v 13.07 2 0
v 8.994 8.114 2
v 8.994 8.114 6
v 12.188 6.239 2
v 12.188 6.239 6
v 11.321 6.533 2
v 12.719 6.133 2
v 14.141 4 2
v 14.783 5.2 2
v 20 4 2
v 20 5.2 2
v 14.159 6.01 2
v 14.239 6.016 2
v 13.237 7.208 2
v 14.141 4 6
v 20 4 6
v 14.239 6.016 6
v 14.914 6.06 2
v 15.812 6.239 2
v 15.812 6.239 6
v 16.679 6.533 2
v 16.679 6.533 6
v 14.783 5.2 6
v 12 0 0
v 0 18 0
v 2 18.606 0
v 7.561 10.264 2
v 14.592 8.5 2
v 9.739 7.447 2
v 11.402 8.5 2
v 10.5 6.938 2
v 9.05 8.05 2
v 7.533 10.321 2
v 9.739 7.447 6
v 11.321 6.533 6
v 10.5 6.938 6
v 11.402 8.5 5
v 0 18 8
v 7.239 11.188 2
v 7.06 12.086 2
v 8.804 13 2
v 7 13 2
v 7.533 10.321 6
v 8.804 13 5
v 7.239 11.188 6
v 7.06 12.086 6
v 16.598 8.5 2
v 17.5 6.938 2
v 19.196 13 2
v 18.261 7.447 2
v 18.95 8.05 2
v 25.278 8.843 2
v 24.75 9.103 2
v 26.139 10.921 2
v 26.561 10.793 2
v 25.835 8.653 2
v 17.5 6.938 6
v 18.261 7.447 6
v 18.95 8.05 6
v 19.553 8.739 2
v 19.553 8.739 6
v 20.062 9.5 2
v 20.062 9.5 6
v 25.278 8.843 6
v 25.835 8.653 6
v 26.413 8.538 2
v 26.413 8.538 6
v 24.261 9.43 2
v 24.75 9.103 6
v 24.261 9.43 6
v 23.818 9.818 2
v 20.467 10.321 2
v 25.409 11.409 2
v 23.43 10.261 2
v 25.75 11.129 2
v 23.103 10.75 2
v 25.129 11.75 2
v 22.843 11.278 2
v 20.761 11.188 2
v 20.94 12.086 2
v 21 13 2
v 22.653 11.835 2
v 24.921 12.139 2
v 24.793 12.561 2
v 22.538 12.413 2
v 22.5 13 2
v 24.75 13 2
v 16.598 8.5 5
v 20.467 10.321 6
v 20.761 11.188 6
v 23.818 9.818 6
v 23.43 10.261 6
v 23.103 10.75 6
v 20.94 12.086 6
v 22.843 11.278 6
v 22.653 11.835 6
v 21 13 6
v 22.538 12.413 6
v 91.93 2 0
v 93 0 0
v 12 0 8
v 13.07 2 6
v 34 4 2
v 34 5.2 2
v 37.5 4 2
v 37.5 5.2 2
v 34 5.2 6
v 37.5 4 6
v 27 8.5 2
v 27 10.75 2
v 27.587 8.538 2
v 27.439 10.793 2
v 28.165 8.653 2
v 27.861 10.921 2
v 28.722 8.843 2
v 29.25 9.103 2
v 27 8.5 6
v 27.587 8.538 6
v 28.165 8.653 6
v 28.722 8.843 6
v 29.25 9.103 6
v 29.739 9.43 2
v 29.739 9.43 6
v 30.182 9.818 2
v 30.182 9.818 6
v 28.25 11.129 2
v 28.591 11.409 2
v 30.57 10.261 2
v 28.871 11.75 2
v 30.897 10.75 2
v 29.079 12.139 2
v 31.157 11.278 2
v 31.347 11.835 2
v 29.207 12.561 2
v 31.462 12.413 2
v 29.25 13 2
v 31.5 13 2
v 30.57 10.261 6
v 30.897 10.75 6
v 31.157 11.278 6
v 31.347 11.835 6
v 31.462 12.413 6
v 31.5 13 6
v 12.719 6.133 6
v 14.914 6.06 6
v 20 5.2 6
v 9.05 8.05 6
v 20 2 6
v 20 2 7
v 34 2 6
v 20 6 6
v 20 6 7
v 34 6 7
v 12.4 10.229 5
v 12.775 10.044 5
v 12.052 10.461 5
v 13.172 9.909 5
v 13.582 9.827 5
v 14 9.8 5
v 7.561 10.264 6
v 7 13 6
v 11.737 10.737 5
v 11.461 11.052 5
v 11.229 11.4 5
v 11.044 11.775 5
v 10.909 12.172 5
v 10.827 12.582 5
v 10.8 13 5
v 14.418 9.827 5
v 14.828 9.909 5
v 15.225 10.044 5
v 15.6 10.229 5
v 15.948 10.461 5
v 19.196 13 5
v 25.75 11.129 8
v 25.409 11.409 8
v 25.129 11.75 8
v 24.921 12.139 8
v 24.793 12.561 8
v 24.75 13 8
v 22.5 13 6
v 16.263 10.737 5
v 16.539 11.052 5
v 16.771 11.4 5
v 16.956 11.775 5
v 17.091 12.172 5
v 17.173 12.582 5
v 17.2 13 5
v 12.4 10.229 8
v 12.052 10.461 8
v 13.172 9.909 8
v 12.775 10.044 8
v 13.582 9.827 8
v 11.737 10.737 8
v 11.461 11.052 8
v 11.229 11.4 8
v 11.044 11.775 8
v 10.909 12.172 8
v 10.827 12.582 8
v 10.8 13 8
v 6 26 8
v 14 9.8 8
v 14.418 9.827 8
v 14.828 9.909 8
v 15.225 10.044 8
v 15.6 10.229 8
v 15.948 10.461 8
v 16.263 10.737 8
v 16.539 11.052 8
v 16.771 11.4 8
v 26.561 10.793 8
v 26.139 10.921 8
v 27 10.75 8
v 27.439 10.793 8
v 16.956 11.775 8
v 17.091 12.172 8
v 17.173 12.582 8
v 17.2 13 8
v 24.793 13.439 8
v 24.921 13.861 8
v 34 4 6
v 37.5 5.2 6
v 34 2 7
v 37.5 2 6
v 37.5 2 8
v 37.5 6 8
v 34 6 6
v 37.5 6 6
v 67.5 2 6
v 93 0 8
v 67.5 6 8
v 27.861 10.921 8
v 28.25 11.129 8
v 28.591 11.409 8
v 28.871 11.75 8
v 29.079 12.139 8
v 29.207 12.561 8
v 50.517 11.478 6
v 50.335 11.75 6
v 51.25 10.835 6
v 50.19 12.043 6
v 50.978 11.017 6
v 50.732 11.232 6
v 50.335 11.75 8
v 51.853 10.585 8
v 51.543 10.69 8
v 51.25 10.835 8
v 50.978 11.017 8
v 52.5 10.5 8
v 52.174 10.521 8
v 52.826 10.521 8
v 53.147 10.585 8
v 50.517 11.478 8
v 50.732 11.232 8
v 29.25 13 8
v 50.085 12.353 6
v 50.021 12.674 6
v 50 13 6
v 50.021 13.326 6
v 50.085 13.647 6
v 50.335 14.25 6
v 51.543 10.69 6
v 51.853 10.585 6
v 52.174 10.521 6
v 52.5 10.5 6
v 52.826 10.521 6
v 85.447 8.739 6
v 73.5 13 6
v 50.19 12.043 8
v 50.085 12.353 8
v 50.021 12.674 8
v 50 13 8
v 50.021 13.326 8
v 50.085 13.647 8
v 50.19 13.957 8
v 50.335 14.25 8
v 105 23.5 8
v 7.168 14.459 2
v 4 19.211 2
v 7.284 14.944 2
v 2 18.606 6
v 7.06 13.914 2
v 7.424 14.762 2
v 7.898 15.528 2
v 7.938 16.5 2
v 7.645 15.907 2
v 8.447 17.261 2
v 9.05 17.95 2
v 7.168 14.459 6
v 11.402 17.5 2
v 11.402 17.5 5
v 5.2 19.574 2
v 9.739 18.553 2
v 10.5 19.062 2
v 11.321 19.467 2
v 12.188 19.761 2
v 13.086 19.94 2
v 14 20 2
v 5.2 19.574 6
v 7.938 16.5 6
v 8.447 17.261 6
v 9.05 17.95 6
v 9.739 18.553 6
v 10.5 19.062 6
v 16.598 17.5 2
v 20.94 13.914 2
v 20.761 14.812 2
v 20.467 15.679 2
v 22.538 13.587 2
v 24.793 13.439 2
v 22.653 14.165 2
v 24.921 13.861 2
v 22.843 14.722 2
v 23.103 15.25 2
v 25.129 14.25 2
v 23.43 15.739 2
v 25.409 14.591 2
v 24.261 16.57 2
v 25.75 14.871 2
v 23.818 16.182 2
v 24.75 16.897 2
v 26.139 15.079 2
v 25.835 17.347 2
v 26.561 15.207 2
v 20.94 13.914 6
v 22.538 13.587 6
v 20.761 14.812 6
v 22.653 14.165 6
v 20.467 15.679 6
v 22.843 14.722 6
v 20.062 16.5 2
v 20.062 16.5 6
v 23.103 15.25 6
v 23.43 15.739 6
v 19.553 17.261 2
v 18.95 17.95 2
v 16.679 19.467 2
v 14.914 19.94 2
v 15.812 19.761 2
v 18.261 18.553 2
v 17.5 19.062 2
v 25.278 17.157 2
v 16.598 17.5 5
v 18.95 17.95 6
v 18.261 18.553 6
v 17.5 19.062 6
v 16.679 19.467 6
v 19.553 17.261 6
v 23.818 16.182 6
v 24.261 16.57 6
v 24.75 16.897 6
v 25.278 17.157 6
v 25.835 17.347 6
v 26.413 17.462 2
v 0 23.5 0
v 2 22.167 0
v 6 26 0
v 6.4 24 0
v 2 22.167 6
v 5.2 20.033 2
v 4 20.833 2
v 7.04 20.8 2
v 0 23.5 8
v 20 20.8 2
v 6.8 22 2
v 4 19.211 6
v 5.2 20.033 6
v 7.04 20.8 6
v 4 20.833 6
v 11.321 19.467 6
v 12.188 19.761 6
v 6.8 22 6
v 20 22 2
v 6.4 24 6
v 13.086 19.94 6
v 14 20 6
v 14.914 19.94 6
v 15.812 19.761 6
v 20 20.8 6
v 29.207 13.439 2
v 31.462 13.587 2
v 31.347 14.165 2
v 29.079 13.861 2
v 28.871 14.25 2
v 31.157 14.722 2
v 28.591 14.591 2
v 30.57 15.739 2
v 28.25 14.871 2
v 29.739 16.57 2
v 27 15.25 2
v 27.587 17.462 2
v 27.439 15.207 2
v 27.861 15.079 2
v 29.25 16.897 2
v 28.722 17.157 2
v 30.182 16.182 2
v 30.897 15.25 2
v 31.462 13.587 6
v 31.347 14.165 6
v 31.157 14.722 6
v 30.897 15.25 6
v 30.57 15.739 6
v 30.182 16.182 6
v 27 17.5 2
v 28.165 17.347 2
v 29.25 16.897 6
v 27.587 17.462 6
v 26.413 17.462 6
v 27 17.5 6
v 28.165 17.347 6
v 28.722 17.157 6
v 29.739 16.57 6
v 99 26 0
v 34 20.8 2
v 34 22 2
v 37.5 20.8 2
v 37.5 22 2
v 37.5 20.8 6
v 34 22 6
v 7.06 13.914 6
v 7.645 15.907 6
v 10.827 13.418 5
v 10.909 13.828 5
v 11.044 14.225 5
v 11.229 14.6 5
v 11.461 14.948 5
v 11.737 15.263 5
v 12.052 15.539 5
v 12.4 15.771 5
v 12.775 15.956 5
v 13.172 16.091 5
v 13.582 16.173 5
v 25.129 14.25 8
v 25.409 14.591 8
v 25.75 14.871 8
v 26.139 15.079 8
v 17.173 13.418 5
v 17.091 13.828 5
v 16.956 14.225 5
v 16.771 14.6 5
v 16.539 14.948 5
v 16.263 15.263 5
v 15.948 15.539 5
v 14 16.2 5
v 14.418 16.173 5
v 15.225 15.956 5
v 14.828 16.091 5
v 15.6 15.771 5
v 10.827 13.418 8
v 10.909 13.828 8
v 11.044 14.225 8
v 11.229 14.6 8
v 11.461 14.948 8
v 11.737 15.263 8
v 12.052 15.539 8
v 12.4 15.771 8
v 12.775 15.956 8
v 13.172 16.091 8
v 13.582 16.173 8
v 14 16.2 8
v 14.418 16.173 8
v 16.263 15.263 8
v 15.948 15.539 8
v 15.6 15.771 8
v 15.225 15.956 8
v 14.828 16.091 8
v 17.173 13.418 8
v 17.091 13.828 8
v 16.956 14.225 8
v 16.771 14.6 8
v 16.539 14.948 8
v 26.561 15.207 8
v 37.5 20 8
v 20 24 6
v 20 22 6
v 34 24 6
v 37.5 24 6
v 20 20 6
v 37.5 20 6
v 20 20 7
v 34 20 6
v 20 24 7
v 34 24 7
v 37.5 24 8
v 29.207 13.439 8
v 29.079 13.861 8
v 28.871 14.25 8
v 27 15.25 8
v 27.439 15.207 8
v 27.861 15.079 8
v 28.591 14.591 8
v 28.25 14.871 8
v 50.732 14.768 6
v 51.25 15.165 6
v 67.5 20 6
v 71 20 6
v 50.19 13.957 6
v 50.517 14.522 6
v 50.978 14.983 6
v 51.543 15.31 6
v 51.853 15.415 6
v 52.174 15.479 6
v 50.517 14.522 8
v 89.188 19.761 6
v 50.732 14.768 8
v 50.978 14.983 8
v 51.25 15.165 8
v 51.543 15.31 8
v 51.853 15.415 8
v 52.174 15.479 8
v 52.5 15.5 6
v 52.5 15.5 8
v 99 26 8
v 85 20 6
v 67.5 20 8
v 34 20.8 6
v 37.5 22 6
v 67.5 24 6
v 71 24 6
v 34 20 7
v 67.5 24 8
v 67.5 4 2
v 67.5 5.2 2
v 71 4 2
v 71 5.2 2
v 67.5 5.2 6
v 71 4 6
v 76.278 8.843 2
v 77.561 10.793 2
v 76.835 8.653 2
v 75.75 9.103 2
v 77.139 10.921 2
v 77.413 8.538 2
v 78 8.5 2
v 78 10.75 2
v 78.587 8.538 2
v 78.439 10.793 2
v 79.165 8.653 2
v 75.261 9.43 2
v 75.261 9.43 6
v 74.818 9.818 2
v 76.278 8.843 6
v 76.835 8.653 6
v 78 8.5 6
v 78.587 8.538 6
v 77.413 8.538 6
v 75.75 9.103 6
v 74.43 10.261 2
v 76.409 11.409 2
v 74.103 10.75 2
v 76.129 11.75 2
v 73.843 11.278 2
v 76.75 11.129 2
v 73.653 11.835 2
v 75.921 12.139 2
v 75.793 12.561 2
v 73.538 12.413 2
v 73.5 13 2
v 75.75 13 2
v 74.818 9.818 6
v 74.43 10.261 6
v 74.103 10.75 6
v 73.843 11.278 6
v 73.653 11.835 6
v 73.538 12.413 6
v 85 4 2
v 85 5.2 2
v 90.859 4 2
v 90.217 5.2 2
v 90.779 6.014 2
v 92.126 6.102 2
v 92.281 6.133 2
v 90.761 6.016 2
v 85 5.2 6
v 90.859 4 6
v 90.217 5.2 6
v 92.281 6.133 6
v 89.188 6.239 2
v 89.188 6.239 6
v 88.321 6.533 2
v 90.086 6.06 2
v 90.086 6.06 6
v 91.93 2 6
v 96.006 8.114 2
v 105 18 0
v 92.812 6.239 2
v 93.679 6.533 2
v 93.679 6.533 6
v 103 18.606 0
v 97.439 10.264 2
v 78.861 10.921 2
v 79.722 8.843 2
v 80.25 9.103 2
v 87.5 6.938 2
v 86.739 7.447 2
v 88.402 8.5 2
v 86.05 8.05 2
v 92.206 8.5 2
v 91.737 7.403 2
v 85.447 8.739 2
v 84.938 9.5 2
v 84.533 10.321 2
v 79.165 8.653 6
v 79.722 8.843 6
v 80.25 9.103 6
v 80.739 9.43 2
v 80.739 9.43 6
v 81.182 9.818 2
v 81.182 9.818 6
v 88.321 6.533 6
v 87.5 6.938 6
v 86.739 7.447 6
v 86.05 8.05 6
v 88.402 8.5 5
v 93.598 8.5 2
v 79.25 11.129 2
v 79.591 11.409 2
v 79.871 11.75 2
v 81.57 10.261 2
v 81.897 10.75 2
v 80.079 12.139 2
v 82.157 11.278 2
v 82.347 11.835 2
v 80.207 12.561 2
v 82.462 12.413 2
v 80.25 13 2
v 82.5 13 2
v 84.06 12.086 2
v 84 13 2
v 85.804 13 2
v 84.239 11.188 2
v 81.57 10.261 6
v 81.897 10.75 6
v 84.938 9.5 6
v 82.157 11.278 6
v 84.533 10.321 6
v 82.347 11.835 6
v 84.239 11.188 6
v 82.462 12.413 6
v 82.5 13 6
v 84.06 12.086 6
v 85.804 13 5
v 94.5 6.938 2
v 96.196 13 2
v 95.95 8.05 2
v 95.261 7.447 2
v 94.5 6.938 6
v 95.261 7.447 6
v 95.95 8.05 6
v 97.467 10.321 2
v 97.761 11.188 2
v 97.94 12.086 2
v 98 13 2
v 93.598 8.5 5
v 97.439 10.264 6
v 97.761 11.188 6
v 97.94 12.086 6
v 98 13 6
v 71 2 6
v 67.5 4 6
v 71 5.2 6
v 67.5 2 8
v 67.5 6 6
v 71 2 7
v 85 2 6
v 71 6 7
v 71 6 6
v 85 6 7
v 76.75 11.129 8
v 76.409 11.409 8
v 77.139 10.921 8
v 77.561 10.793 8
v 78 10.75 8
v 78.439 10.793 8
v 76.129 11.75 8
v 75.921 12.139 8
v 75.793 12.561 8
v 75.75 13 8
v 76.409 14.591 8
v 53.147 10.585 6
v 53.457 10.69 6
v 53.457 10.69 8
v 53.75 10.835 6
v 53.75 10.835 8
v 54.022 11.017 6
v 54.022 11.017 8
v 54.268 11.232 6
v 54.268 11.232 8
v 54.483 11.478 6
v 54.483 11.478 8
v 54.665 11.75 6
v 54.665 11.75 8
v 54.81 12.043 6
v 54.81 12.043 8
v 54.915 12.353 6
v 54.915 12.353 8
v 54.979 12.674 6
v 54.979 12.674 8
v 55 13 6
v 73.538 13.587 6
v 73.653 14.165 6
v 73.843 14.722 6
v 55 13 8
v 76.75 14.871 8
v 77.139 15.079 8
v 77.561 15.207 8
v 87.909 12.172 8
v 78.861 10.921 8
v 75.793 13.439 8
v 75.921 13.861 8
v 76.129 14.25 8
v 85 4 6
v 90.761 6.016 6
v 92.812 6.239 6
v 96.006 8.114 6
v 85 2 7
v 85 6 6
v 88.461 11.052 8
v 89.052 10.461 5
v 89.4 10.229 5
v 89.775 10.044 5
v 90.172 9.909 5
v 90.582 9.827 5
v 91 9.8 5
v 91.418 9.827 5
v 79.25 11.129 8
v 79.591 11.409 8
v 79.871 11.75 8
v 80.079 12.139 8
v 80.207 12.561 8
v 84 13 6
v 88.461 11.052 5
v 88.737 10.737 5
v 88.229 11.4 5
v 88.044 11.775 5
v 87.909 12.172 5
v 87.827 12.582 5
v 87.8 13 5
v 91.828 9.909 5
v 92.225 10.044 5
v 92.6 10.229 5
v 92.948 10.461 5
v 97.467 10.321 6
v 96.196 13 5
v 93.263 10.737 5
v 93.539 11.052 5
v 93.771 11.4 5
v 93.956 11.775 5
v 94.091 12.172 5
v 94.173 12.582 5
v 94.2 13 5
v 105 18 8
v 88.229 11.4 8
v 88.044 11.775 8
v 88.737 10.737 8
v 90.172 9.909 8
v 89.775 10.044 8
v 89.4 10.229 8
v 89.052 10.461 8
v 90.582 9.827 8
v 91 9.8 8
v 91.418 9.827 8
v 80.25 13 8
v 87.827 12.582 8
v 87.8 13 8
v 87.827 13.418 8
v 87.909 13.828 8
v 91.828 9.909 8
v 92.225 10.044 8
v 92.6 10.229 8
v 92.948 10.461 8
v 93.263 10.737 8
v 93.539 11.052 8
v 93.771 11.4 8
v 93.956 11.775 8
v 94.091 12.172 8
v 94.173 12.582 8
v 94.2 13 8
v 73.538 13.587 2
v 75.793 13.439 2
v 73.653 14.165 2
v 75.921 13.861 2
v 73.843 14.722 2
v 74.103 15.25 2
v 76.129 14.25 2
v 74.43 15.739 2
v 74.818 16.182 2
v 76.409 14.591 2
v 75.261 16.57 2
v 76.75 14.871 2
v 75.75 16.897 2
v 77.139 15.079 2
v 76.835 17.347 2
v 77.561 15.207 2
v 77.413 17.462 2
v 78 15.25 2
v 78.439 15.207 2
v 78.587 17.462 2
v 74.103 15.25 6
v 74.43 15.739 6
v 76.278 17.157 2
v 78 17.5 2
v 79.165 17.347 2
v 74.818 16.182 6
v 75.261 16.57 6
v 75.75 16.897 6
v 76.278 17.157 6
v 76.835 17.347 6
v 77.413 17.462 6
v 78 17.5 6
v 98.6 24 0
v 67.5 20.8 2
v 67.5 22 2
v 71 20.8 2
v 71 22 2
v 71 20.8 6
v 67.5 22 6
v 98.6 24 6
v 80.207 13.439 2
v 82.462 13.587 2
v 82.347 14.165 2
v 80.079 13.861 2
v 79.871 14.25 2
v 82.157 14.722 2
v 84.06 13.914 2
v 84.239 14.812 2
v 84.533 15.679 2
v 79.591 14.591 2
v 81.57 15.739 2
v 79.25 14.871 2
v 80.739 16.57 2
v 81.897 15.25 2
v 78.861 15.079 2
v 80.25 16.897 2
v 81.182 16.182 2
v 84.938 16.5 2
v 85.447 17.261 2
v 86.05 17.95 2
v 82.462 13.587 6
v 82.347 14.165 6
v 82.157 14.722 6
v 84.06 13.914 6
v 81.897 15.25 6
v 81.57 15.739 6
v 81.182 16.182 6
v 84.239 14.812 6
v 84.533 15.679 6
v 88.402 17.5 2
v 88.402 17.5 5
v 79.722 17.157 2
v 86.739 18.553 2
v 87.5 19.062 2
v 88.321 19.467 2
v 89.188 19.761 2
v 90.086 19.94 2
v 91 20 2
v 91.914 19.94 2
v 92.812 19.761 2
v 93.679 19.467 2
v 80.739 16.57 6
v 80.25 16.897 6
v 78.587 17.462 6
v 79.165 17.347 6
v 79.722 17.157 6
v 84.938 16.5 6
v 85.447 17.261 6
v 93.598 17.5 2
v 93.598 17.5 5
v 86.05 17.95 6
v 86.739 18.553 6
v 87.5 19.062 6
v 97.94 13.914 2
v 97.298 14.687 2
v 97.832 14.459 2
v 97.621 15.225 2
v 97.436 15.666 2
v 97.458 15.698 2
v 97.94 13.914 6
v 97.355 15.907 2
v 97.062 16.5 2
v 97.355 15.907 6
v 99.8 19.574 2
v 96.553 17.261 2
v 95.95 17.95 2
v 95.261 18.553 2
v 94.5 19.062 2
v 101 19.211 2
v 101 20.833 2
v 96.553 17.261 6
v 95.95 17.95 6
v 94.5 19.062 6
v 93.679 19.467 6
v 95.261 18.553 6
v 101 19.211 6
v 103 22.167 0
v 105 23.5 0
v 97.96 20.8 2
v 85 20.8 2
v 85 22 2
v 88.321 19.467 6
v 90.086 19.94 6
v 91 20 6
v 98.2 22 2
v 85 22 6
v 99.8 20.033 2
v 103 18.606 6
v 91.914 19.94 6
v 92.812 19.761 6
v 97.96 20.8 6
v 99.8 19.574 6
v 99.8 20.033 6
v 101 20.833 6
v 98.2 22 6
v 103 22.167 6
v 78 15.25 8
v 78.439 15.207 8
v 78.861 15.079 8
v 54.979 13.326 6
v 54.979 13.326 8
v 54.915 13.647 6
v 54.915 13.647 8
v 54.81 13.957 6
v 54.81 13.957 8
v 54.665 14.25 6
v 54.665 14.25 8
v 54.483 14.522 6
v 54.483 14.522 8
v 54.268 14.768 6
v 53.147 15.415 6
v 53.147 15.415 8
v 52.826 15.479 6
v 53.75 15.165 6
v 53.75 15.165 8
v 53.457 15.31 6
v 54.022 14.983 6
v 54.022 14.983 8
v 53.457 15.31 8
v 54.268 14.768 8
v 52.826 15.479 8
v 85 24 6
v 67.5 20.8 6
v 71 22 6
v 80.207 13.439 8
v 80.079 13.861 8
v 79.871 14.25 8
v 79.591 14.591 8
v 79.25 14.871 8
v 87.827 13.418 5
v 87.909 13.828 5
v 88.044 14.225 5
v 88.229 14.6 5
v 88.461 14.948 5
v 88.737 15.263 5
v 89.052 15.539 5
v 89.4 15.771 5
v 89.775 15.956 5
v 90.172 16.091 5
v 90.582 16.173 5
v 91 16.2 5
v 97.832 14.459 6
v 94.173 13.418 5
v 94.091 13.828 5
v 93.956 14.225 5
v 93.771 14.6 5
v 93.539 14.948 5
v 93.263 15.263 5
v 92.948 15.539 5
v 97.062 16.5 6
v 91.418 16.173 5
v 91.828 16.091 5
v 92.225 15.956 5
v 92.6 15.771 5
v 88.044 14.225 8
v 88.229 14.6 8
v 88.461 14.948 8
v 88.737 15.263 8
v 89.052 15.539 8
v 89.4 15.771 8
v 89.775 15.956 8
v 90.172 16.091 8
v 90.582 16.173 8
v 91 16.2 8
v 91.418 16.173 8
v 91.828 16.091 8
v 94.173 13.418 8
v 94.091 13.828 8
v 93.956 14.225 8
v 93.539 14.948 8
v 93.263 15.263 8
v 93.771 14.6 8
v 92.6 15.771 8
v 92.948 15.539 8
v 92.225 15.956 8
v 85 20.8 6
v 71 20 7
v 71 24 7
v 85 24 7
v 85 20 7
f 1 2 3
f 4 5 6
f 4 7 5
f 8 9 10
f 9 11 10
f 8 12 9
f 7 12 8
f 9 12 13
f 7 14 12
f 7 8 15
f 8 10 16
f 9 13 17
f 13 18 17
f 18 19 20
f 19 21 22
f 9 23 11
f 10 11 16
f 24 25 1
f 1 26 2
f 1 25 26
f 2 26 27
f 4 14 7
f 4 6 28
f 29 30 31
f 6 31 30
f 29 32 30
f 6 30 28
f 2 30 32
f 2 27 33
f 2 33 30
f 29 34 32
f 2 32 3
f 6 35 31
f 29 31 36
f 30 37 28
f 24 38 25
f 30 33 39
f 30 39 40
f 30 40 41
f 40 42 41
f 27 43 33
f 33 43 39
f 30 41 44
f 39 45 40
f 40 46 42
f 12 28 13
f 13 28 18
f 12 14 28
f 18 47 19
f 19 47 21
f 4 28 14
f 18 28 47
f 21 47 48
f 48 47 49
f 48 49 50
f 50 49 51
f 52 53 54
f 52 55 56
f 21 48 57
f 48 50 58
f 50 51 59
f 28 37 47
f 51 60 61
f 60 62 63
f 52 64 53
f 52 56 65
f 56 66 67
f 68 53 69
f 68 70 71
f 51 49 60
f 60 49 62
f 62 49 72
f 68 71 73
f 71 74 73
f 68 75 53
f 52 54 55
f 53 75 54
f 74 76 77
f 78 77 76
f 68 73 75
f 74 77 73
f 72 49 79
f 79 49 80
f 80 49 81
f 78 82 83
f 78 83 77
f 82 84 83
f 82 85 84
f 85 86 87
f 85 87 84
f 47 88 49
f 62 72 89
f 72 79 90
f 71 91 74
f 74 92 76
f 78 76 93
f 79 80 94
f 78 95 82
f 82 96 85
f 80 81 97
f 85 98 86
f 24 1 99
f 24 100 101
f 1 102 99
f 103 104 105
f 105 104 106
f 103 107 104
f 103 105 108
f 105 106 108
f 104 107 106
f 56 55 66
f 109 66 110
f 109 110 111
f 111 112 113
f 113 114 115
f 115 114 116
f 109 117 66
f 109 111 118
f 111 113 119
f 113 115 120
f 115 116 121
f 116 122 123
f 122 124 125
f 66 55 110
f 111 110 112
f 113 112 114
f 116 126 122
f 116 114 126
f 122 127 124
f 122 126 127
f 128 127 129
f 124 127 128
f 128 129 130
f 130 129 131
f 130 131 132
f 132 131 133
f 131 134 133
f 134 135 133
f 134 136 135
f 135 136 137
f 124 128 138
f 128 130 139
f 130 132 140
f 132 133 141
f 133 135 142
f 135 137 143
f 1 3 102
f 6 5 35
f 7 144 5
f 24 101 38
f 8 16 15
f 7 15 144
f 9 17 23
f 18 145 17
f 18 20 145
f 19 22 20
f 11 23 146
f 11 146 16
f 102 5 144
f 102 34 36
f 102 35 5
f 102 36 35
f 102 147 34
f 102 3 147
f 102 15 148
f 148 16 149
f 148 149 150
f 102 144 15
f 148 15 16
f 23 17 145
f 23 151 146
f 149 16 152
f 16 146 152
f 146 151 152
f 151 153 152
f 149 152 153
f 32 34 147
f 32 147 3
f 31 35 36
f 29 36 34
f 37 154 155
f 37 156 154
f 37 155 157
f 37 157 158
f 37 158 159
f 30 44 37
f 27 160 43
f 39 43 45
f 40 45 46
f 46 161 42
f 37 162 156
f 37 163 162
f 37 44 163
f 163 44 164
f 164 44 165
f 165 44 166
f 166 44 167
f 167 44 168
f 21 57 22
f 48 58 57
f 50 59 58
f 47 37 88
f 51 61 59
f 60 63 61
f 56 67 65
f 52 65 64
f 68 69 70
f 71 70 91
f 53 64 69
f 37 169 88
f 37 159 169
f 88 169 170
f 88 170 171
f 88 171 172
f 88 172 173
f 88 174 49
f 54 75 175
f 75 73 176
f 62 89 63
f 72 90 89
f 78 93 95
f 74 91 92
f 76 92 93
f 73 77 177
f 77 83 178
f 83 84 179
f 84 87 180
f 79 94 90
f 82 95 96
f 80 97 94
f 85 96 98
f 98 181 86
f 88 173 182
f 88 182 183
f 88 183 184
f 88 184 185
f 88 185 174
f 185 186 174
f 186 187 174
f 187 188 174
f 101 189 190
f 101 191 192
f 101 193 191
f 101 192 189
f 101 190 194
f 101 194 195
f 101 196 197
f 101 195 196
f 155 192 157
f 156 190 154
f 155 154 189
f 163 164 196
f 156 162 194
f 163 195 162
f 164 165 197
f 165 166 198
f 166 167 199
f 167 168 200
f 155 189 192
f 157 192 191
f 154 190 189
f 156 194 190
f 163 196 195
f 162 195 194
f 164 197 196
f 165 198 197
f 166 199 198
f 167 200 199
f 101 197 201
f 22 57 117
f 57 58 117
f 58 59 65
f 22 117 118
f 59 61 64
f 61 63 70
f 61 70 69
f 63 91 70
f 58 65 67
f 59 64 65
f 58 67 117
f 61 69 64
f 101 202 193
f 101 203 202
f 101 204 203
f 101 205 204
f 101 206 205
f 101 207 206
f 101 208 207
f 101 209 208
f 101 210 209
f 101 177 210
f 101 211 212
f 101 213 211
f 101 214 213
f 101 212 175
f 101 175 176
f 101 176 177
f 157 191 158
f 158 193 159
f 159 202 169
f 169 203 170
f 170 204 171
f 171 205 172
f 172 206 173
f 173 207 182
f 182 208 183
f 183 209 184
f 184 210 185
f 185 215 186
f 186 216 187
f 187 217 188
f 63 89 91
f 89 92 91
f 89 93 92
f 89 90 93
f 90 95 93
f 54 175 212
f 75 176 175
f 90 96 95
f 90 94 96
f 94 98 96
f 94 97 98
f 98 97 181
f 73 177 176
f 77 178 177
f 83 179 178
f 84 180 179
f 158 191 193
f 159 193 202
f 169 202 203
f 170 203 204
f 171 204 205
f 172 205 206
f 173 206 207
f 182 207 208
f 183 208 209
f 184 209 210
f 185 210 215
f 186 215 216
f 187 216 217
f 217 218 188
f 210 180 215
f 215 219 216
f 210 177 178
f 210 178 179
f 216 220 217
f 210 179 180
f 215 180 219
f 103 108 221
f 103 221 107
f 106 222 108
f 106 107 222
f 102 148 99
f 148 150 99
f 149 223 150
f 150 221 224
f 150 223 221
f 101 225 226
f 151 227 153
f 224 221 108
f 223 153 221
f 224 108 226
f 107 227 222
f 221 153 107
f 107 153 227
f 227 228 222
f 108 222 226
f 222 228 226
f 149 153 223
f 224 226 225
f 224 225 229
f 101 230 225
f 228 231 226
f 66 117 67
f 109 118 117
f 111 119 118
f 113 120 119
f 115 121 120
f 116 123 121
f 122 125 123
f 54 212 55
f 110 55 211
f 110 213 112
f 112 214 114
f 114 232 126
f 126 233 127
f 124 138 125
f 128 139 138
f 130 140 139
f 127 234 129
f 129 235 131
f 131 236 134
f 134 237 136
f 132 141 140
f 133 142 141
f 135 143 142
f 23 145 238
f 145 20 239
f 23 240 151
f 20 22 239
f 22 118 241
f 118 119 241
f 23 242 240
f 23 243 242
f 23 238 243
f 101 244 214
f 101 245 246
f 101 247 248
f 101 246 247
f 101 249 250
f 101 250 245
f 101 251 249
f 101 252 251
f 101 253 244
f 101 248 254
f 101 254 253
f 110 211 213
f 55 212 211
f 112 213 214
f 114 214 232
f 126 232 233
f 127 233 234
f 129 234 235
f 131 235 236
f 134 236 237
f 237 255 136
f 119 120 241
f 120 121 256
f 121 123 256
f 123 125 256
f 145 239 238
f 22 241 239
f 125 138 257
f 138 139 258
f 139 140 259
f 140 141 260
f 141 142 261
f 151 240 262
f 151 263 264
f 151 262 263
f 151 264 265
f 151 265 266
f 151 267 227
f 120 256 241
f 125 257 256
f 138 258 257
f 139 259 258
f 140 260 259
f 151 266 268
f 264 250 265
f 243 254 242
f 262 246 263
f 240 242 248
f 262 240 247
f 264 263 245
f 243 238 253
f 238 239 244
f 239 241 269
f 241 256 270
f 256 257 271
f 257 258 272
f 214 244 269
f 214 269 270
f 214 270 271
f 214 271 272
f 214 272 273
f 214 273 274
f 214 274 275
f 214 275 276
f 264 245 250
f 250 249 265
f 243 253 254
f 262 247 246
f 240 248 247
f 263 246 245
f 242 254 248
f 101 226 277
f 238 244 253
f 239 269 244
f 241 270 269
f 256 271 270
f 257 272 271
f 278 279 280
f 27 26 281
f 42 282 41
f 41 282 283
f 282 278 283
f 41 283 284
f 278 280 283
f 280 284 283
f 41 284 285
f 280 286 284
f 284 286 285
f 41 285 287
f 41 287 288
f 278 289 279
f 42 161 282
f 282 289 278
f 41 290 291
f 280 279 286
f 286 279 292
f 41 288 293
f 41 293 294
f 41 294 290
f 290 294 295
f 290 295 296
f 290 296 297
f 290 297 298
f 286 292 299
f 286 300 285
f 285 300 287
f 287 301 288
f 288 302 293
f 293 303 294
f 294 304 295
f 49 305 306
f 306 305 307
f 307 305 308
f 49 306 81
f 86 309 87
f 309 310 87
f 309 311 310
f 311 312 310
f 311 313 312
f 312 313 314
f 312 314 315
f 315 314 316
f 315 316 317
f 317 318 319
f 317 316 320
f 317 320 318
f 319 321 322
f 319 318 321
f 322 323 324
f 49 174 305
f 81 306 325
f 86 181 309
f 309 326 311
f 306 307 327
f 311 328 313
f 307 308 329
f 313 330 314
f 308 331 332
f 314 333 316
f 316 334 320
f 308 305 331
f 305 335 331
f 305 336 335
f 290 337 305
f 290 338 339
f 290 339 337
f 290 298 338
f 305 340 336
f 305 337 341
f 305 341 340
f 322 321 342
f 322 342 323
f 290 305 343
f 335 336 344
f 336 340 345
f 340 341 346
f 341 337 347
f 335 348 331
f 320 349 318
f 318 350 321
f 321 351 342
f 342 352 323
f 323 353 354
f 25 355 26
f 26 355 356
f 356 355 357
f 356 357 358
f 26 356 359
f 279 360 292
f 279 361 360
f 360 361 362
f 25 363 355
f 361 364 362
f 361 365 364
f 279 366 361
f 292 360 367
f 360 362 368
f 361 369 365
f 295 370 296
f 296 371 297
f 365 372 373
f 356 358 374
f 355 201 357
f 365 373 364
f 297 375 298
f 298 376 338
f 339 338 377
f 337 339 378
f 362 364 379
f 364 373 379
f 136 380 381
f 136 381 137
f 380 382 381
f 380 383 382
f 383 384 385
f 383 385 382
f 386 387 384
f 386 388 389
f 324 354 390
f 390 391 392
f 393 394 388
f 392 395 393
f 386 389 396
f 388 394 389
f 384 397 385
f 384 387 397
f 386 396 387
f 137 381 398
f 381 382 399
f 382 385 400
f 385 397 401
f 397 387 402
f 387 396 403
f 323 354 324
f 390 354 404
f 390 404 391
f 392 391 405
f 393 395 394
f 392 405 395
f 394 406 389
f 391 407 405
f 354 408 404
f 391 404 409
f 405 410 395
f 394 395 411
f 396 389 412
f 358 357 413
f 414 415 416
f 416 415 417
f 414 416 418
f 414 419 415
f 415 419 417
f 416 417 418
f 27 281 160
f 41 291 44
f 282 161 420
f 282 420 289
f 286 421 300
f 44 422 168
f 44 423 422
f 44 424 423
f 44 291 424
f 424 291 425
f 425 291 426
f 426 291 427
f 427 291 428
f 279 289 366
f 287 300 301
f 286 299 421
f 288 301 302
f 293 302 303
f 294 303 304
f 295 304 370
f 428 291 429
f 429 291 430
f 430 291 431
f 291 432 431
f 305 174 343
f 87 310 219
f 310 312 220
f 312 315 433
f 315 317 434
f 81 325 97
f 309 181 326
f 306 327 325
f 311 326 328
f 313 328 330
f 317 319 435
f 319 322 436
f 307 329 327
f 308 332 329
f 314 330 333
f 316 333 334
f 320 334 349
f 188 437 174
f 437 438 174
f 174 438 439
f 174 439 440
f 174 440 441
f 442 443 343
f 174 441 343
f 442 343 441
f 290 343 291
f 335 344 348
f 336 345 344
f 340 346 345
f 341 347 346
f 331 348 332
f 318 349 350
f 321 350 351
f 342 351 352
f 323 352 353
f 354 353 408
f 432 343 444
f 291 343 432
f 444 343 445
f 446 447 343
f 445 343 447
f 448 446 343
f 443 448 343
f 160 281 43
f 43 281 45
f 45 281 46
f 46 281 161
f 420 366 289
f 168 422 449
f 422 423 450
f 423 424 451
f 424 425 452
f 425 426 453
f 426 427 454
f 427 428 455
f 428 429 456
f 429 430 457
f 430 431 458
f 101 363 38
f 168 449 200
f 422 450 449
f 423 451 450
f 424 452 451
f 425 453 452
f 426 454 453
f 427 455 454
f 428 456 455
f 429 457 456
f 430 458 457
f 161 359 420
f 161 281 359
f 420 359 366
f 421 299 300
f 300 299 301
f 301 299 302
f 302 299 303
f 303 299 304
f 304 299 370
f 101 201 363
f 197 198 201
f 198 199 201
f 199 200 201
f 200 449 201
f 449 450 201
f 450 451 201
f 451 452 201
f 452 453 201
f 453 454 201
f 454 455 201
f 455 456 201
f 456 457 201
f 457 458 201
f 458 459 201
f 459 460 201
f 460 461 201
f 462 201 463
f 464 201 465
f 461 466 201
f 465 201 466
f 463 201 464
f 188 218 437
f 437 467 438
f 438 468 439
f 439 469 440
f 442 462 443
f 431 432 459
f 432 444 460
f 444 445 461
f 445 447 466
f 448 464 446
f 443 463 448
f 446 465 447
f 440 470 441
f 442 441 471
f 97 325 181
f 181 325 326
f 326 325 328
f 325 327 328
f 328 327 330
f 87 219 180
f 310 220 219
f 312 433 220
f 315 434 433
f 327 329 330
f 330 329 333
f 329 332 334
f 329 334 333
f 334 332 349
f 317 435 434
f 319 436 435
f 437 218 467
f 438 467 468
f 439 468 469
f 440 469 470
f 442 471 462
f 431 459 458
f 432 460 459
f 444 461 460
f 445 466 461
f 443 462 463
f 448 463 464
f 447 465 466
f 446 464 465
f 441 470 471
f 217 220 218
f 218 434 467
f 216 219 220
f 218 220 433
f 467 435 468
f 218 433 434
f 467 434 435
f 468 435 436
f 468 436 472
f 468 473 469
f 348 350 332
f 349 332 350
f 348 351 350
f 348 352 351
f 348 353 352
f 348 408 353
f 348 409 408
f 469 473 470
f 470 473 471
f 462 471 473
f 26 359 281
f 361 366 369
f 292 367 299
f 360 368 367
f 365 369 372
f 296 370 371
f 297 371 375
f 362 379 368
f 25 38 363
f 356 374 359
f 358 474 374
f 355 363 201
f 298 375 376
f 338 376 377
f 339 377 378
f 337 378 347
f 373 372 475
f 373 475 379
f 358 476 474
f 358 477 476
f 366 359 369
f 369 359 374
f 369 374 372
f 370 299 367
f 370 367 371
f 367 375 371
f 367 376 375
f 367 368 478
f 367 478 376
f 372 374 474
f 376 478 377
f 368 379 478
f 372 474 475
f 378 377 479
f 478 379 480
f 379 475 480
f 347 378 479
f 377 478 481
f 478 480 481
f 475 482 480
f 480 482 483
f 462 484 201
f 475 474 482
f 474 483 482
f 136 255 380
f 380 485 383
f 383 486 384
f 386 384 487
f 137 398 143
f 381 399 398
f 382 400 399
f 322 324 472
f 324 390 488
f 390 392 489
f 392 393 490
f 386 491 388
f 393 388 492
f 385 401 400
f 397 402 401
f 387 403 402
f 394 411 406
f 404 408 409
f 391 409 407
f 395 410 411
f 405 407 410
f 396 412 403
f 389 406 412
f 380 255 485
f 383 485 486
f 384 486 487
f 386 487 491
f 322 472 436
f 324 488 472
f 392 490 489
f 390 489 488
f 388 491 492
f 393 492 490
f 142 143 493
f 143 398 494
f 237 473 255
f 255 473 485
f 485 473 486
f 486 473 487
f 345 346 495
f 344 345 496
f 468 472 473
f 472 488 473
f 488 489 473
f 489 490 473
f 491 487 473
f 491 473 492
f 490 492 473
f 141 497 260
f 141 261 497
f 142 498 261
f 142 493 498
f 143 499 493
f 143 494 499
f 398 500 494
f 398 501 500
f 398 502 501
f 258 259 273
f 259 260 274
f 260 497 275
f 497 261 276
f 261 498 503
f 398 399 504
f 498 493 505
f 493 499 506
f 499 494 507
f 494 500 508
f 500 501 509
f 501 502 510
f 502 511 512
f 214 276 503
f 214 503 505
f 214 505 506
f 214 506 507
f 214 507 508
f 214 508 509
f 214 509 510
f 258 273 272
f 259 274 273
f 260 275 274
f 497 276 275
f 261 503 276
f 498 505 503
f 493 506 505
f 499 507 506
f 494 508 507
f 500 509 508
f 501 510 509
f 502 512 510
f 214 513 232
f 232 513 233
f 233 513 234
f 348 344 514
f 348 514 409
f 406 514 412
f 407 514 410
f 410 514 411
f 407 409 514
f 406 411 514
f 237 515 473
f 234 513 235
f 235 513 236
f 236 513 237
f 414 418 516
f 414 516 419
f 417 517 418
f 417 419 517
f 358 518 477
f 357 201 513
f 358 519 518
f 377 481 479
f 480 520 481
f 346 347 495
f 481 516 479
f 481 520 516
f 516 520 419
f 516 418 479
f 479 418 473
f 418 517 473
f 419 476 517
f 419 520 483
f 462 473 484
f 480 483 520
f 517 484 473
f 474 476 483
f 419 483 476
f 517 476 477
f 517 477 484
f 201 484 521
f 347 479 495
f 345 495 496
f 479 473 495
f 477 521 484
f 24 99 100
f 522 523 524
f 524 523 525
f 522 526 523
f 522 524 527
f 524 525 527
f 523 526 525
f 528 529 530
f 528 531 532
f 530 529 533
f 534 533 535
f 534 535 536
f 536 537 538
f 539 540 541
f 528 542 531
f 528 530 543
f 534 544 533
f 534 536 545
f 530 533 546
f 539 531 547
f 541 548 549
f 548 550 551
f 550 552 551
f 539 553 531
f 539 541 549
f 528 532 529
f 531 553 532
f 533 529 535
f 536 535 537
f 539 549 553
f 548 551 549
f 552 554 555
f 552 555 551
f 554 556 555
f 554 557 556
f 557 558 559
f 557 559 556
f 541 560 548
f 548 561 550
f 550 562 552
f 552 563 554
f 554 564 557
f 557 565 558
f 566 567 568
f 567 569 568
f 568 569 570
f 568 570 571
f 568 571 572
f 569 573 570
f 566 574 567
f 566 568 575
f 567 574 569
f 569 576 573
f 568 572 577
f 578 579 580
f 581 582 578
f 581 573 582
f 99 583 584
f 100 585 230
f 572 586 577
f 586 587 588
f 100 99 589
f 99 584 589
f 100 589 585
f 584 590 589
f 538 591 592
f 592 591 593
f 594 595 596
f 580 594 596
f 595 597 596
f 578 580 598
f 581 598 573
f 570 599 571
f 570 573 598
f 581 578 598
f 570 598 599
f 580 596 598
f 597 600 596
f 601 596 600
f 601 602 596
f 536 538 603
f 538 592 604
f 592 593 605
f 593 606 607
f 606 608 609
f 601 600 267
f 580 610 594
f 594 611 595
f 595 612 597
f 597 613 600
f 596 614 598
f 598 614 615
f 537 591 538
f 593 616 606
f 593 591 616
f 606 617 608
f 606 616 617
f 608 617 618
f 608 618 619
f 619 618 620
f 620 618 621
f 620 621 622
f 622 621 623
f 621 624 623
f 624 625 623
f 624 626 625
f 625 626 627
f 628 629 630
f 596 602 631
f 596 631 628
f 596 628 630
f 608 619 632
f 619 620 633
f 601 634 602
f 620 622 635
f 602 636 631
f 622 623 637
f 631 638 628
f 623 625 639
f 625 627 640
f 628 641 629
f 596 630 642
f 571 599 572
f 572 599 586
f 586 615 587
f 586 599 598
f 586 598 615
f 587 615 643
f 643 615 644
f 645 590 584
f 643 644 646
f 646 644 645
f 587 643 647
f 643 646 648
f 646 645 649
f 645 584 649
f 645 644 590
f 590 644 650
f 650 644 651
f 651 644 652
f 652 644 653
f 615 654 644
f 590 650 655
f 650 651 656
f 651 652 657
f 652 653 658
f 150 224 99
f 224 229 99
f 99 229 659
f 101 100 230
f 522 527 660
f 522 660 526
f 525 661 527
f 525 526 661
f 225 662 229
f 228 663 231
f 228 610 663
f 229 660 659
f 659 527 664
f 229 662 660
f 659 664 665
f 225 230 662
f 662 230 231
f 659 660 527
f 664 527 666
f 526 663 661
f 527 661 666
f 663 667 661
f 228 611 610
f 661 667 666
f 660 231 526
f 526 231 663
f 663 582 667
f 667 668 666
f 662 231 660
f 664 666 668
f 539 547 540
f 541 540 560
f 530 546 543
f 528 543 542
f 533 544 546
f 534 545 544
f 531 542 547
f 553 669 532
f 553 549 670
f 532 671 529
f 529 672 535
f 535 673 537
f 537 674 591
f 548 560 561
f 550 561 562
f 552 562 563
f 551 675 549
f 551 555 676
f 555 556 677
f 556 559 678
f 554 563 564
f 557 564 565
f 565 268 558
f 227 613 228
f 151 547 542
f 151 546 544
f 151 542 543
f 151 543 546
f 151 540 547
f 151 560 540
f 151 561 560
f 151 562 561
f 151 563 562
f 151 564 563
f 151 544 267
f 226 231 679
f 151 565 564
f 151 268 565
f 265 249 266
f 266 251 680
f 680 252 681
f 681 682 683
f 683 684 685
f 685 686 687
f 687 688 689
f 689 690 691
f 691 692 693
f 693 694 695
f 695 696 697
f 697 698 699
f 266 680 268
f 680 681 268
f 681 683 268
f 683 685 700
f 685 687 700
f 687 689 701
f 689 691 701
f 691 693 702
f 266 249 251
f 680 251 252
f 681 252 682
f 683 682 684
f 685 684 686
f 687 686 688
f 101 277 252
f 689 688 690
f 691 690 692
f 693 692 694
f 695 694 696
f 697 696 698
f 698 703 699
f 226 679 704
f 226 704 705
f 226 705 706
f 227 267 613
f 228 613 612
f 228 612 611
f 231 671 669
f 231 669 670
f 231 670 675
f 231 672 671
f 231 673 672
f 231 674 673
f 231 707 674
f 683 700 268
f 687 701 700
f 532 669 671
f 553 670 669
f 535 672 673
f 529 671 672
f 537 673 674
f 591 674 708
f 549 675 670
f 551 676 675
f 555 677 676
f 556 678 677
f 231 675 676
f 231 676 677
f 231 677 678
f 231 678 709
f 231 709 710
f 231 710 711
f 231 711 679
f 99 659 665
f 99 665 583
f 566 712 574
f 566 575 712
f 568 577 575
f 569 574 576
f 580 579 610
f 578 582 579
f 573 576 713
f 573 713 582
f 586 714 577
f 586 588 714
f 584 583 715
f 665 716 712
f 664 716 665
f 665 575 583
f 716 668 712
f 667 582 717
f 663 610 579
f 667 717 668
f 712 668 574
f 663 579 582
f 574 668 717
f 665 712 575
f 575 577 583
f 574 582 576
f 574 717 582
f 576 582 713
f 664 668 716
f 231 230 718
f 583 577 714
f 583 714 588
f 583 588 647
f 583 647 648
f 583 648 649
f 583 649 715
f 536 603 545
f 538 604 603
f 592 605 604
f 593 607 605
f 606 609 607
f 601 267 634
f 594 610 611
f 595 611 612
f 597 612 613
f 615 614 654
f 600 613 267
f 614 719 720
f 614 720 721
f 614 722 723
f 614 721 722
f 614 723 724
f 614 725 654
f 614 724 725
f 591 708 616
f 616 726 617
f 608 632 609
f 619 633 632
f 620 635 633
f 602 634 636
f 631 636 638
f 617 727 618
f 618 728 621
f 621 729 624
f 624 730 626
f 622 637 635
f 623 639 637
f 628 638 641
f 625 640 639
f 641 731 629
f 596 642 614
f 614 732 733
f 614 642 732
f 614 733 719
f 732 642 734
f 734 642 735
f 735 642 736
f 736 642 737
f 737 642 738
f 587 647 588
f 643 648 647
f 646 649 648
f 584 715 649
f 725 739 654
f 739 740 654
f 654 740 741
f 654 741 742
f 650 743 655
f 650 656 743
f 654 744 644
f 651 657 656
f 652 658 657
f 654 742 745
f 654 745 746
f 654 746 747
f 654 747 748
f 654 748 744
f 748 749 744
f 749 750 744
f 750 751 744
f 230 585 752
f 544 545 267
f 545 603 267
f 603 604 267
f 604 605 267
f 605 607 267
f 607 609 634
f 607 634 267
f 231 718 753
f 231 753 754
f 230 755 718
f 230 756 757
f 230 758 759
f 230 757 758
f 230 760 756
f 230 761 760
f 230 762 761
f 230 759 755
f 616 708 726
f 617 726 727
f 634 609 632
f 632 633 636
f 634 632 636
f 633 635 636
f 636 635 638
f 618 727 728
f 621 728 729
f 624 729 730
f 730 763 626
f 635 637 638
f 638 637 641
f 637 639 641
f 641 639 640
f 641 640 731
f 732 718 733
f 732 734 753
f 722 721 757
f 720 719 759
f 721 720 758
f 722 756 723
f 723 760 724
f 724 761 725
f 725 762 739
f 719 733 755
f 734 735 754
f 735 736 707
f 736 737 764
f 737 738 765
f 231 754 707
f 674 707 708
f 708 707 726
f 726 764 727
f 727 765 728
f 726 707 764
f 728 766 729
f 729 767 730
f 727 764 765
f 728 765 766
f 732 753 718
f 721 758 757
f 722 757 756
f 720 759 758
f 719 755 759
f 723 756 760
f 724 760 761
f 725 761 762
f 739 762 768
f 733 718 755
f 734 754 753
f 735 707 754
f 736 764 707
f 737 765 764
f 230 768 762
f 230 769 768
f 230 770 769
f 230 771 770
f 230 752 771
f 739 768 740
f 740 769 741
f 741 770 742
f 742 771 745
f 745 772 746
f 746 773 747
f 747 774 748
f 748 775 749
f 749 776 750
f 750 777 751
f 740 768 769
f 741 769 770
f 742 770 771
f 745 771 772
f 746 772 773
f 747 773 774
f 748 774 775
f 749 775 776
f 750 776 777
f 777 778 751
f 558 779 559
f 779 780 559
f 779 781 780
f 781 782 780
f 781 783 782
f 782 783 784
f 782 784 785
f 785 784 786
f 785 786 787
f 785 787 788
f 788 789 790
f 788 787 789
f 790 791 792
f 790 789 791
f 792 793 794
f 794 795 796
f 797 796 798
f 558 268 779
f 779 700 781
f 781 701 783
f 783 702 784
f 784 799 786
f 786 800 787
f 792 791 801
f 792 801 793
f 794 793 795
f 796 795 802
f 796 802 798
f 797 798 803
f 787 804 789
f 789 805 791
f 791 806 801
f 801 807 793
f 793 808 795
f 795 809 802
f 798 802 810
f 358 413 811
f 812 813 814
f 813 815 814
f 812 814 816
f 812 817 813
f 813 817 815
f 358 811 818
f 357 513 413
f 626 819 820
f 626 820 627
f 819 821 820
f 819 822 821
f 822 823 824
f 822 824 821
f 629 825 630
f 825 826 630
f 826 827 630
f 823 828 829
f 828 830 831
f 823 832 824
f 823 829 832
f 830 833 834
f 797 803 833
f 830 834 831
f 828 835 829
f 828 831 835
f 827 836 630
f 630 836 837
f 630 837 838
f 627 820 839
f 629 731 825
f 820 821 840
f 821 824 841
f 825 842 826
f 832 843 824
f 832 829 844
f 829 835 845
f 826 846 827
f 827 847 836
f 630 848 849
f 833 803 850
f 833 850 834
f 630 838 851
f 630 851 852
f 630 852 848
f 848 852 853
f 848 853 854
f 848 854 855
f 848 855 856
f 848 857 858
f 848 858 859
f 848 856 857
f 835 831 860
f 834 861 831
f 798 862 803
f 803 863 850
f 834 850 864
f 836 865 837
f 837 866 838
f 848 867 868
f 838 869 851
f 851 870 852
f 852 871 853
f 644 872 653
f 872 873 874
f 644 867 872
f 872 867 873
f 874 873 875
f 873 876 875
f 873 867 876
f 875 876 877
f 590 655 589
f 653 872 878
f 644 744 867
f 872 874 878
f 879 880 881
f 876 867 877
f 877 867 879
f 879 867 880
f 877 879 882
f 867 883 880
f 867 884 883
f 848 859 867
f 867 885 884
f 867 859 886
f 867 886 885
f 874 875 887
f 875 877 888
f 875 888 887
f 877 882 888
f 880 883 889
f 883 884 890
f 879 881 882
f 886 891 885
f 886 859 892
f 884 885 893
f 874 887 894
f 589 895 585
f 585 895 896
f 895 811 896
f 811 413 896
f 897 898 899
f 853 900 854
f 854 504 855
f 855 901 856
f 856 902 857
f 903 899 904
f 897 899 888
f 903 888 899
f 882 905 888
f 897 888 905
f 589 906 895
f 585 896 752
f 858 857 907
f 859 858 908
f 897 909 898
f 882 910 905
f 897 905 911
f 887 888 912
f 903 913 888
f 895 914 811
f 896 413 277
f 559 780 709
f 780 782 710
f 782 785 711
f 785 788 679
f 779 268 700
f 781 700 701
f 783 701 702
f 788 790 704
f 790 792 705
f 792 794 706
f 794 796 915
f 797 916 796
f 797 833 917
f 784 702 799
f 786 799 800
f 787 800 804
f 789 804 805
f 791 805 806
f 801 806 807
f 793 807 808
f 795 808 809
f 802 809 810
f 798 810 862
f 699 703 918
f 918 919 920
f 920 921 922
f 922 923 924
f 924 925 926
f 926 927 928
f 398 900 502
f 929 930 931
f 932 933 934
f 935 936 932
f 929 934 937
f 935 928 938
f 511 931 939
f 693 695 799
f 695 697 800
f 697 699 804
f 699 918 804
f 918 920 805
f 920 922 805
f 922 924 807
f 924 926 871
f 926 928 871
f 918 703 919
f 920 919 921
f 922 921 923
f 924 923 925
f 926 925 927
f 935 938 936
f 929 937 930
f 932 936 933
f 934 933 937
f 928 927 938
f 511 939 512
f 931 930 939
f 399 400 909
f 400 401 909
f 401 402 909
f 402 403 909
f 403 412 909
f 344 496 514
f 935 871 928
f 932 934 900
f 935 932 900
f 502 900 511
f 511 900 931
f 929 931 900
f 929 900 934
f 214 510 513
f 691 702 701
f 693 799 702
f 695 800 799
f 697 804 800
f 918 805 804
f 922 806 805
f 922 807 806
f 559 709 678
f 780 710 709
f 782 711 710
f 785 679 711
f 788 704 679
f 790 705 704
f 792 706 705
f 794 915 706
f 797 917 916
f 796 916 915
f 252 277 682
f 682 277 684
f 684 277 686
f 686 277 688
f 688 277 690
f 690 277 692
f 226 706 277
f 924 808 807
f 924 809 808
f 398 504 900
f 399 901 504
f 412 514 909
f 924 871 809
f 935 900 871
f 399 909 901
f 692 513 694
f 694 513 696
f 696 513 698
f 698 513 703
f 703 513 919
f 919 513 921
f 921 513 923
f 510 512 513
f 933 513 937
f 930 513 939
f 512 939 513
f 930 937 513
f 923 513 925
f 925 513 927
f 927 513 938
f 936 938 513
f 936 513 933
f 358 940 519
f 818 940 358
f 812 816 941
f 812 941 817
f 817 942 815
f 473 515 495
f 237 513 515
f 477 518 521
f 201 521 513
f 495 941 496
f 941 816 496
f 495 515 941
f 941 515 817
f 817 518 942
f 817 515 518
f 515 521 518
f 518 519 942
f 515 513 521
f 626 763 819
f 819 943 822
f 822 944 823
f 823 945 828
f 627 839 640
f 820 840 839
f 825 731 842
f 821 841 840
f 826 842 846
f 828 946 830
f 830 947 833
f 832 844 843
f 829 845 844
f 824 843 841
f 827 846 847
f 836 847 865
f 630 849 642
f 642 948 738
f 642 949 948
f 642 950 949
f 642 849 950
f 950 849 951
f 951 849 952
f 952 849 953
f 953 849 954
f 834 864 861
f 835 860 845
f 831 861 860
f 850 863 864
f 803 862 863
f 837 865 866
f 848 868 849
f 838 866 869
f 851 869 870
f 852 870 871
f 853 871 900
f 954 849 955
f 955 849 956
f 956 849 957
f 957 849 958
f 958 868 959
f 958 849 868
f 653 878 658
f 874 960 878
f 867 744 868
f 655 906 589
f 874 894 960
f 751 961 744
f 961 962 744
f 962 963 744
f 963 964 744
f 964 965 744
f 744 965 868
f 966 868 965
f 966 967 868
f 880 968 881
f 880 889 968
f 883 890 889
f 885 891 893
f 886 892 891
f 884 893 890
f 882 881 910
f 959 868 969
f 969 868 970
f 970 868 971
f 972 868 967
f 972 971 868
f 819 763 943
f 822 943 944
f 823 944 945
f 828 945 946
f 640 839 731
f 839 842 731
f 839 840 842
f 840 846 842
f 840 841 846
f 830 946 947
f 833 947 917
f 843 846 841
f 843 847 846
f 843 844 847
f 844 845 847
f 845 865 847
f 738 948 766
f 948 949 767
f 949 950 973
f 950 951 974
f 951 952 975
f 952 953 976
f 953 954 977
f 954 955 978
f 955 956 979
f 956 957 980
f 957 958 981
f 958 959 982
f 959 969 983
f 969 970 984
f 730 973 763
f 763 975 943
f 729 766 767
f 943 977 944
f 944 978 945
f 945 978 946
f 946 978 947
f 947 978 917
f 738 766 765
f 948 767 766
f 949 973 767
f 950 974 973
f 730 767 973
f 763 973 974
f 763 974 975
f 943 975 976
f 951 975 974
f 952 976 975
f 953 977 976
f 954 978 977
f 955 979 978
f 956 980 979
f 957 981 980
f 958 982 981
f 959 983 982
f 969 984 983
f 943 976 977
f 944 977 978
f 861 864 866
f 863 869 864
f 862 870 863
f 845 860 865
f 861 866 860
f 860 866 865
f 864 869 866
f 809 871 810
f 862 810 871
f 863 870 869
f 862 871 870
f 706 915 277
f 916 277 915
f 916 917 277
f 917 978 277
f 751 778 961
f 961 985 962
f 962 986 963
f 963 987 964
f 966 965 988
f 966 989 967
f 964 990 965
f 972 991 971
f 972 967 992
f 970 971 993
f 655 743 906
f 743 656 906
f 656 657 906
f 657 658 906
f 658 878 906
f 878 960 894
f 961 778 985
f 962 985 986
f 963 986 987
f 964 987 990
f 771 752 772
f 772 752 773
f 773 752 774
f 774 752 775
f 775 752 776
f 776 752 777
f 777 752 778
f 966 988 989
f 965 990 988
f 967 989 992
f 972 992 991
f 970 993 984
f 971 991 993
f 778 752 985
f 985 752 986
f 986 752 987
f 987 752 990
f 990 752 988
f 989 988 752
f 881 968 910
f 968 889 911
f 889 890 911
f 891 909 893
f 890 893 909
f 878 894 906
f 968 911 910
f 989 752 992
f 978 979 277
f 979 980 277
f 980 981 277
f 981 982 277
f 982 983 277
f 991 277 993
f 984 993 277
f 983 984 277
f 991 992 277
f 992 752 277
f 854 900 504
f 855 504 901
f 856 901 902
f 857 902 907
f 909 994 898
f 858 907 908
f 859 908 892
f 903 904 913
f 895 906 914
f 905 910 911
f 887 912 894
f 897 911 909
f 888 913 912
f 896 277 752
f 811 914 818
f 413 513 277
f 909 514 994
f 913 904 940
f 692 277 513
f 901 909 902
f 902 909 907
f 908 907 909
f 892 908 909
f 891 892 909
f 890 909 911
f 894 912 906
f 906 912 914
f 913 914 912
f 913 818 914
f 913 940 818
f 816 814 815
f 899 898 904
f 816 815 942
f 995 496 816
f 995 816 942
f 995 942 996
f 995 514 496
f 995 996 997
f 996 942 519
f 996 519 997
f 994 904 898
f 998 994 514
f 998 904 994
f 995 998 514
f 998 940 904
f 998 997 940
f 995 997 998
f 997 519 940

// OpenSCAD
// Copy of black fuse/stud block half. 105 x 26 x 8 mm.
// Open tray: inside face open at z=0 (rim + gutter + bosses), flat outside face at z=H.
L = 105; W = 26; H = 8;
// End shape: one long diagonal + one short steep chamfer; far end is the mirror image
long_dx = 12; long_dy = 18; short_dx = 6; short_dy = 2.5;
rim = 2; gutter = 2; inner_wall = 1.2; floor_t = 2; boss_top = 2;
stud_d = 6.4; stud_inset = 14; hex_af = 9; hex_depth = 3; stud_boss_d = 14;
screw_d = 4.5; screw_x = 27; screw_boss_d = 9;
clip_l = 14; clip_w = 4; clip_left = 1; // 4 blind clip recesses beside the screw holes
cable_d = 5;
slot_l = 30; slot_w = 4; slot_wall = 2;

fz = H - floor_t;
module outline() {
  e = [[L-long_dx,0],[L,long_dy],[L,W-short_dy],[L-short_dx,W]];
  f = [for (i = [len(e)-1:-1:0]) [L-e[i][0], e[i][1]]];
  polygon(concat(e, f));
}
studs  = [[stud_inset, W/2], [L-stud_inset, W/2]];
screws = [[screw_x, W/2], [L-screw_x, W/2]];

difference() {
  union() {
    difference() {
      linear_extrude(H) outline();
      translate([0,0,-1]) linear_extrude(fz+1) offset(delta=-rim) outline();
    }
    // low inner wall (gutter lies between it and the rim)
    translate([0,0,boss_top]) linear_extrude(fz-boss_top+0.01)
      difference() { offset(delta=-(rim+gutter)) outline();
                     offset(delta=-(rim+gutter+inner_wall)) outline(); }
    for (p = studs)  translate([p[0],p[1],boss_top]) cylinder(d=stud_boss_d,h=fz-boss_top+0.01,$fn=48);
    for (p = screws) translate([p[0],p[1],boss_top]) cylinder(d=screw_boss_d,h=fz-boss_top+0.01,$fn=48);
  }
  for (p = studs) {
    translate([p[0],p[1],boss_top-1]) cylinder(d=hex_af/cos(30),h=hex_depth+1,$fn=6);
    translate([p[0],p[1],-1]) cylinder(d=stud_d,h=H+2,$fn=48);
  }
  for (p = screws) translate([p[0],p[1],-1]) cylinder(d=screw_d,h=H+2,$fn=32);
  translate([L/2,W/2,-1]) cylinder(d=cable_d,h=H+2,$fn=48);
  for (p = screws, y = [rim, W-rim-clip_w])
    translate([p[0]-clip_l/2,y,-1]) cube([clip_l,clip_w,H-clip_left+1]);
  for (y = [slot_wall, W-slot_wall-slot_w])
    translate([L/2-slot_l/2,y,-1]) cube([slot_l,slot_w,H+2]);
}
